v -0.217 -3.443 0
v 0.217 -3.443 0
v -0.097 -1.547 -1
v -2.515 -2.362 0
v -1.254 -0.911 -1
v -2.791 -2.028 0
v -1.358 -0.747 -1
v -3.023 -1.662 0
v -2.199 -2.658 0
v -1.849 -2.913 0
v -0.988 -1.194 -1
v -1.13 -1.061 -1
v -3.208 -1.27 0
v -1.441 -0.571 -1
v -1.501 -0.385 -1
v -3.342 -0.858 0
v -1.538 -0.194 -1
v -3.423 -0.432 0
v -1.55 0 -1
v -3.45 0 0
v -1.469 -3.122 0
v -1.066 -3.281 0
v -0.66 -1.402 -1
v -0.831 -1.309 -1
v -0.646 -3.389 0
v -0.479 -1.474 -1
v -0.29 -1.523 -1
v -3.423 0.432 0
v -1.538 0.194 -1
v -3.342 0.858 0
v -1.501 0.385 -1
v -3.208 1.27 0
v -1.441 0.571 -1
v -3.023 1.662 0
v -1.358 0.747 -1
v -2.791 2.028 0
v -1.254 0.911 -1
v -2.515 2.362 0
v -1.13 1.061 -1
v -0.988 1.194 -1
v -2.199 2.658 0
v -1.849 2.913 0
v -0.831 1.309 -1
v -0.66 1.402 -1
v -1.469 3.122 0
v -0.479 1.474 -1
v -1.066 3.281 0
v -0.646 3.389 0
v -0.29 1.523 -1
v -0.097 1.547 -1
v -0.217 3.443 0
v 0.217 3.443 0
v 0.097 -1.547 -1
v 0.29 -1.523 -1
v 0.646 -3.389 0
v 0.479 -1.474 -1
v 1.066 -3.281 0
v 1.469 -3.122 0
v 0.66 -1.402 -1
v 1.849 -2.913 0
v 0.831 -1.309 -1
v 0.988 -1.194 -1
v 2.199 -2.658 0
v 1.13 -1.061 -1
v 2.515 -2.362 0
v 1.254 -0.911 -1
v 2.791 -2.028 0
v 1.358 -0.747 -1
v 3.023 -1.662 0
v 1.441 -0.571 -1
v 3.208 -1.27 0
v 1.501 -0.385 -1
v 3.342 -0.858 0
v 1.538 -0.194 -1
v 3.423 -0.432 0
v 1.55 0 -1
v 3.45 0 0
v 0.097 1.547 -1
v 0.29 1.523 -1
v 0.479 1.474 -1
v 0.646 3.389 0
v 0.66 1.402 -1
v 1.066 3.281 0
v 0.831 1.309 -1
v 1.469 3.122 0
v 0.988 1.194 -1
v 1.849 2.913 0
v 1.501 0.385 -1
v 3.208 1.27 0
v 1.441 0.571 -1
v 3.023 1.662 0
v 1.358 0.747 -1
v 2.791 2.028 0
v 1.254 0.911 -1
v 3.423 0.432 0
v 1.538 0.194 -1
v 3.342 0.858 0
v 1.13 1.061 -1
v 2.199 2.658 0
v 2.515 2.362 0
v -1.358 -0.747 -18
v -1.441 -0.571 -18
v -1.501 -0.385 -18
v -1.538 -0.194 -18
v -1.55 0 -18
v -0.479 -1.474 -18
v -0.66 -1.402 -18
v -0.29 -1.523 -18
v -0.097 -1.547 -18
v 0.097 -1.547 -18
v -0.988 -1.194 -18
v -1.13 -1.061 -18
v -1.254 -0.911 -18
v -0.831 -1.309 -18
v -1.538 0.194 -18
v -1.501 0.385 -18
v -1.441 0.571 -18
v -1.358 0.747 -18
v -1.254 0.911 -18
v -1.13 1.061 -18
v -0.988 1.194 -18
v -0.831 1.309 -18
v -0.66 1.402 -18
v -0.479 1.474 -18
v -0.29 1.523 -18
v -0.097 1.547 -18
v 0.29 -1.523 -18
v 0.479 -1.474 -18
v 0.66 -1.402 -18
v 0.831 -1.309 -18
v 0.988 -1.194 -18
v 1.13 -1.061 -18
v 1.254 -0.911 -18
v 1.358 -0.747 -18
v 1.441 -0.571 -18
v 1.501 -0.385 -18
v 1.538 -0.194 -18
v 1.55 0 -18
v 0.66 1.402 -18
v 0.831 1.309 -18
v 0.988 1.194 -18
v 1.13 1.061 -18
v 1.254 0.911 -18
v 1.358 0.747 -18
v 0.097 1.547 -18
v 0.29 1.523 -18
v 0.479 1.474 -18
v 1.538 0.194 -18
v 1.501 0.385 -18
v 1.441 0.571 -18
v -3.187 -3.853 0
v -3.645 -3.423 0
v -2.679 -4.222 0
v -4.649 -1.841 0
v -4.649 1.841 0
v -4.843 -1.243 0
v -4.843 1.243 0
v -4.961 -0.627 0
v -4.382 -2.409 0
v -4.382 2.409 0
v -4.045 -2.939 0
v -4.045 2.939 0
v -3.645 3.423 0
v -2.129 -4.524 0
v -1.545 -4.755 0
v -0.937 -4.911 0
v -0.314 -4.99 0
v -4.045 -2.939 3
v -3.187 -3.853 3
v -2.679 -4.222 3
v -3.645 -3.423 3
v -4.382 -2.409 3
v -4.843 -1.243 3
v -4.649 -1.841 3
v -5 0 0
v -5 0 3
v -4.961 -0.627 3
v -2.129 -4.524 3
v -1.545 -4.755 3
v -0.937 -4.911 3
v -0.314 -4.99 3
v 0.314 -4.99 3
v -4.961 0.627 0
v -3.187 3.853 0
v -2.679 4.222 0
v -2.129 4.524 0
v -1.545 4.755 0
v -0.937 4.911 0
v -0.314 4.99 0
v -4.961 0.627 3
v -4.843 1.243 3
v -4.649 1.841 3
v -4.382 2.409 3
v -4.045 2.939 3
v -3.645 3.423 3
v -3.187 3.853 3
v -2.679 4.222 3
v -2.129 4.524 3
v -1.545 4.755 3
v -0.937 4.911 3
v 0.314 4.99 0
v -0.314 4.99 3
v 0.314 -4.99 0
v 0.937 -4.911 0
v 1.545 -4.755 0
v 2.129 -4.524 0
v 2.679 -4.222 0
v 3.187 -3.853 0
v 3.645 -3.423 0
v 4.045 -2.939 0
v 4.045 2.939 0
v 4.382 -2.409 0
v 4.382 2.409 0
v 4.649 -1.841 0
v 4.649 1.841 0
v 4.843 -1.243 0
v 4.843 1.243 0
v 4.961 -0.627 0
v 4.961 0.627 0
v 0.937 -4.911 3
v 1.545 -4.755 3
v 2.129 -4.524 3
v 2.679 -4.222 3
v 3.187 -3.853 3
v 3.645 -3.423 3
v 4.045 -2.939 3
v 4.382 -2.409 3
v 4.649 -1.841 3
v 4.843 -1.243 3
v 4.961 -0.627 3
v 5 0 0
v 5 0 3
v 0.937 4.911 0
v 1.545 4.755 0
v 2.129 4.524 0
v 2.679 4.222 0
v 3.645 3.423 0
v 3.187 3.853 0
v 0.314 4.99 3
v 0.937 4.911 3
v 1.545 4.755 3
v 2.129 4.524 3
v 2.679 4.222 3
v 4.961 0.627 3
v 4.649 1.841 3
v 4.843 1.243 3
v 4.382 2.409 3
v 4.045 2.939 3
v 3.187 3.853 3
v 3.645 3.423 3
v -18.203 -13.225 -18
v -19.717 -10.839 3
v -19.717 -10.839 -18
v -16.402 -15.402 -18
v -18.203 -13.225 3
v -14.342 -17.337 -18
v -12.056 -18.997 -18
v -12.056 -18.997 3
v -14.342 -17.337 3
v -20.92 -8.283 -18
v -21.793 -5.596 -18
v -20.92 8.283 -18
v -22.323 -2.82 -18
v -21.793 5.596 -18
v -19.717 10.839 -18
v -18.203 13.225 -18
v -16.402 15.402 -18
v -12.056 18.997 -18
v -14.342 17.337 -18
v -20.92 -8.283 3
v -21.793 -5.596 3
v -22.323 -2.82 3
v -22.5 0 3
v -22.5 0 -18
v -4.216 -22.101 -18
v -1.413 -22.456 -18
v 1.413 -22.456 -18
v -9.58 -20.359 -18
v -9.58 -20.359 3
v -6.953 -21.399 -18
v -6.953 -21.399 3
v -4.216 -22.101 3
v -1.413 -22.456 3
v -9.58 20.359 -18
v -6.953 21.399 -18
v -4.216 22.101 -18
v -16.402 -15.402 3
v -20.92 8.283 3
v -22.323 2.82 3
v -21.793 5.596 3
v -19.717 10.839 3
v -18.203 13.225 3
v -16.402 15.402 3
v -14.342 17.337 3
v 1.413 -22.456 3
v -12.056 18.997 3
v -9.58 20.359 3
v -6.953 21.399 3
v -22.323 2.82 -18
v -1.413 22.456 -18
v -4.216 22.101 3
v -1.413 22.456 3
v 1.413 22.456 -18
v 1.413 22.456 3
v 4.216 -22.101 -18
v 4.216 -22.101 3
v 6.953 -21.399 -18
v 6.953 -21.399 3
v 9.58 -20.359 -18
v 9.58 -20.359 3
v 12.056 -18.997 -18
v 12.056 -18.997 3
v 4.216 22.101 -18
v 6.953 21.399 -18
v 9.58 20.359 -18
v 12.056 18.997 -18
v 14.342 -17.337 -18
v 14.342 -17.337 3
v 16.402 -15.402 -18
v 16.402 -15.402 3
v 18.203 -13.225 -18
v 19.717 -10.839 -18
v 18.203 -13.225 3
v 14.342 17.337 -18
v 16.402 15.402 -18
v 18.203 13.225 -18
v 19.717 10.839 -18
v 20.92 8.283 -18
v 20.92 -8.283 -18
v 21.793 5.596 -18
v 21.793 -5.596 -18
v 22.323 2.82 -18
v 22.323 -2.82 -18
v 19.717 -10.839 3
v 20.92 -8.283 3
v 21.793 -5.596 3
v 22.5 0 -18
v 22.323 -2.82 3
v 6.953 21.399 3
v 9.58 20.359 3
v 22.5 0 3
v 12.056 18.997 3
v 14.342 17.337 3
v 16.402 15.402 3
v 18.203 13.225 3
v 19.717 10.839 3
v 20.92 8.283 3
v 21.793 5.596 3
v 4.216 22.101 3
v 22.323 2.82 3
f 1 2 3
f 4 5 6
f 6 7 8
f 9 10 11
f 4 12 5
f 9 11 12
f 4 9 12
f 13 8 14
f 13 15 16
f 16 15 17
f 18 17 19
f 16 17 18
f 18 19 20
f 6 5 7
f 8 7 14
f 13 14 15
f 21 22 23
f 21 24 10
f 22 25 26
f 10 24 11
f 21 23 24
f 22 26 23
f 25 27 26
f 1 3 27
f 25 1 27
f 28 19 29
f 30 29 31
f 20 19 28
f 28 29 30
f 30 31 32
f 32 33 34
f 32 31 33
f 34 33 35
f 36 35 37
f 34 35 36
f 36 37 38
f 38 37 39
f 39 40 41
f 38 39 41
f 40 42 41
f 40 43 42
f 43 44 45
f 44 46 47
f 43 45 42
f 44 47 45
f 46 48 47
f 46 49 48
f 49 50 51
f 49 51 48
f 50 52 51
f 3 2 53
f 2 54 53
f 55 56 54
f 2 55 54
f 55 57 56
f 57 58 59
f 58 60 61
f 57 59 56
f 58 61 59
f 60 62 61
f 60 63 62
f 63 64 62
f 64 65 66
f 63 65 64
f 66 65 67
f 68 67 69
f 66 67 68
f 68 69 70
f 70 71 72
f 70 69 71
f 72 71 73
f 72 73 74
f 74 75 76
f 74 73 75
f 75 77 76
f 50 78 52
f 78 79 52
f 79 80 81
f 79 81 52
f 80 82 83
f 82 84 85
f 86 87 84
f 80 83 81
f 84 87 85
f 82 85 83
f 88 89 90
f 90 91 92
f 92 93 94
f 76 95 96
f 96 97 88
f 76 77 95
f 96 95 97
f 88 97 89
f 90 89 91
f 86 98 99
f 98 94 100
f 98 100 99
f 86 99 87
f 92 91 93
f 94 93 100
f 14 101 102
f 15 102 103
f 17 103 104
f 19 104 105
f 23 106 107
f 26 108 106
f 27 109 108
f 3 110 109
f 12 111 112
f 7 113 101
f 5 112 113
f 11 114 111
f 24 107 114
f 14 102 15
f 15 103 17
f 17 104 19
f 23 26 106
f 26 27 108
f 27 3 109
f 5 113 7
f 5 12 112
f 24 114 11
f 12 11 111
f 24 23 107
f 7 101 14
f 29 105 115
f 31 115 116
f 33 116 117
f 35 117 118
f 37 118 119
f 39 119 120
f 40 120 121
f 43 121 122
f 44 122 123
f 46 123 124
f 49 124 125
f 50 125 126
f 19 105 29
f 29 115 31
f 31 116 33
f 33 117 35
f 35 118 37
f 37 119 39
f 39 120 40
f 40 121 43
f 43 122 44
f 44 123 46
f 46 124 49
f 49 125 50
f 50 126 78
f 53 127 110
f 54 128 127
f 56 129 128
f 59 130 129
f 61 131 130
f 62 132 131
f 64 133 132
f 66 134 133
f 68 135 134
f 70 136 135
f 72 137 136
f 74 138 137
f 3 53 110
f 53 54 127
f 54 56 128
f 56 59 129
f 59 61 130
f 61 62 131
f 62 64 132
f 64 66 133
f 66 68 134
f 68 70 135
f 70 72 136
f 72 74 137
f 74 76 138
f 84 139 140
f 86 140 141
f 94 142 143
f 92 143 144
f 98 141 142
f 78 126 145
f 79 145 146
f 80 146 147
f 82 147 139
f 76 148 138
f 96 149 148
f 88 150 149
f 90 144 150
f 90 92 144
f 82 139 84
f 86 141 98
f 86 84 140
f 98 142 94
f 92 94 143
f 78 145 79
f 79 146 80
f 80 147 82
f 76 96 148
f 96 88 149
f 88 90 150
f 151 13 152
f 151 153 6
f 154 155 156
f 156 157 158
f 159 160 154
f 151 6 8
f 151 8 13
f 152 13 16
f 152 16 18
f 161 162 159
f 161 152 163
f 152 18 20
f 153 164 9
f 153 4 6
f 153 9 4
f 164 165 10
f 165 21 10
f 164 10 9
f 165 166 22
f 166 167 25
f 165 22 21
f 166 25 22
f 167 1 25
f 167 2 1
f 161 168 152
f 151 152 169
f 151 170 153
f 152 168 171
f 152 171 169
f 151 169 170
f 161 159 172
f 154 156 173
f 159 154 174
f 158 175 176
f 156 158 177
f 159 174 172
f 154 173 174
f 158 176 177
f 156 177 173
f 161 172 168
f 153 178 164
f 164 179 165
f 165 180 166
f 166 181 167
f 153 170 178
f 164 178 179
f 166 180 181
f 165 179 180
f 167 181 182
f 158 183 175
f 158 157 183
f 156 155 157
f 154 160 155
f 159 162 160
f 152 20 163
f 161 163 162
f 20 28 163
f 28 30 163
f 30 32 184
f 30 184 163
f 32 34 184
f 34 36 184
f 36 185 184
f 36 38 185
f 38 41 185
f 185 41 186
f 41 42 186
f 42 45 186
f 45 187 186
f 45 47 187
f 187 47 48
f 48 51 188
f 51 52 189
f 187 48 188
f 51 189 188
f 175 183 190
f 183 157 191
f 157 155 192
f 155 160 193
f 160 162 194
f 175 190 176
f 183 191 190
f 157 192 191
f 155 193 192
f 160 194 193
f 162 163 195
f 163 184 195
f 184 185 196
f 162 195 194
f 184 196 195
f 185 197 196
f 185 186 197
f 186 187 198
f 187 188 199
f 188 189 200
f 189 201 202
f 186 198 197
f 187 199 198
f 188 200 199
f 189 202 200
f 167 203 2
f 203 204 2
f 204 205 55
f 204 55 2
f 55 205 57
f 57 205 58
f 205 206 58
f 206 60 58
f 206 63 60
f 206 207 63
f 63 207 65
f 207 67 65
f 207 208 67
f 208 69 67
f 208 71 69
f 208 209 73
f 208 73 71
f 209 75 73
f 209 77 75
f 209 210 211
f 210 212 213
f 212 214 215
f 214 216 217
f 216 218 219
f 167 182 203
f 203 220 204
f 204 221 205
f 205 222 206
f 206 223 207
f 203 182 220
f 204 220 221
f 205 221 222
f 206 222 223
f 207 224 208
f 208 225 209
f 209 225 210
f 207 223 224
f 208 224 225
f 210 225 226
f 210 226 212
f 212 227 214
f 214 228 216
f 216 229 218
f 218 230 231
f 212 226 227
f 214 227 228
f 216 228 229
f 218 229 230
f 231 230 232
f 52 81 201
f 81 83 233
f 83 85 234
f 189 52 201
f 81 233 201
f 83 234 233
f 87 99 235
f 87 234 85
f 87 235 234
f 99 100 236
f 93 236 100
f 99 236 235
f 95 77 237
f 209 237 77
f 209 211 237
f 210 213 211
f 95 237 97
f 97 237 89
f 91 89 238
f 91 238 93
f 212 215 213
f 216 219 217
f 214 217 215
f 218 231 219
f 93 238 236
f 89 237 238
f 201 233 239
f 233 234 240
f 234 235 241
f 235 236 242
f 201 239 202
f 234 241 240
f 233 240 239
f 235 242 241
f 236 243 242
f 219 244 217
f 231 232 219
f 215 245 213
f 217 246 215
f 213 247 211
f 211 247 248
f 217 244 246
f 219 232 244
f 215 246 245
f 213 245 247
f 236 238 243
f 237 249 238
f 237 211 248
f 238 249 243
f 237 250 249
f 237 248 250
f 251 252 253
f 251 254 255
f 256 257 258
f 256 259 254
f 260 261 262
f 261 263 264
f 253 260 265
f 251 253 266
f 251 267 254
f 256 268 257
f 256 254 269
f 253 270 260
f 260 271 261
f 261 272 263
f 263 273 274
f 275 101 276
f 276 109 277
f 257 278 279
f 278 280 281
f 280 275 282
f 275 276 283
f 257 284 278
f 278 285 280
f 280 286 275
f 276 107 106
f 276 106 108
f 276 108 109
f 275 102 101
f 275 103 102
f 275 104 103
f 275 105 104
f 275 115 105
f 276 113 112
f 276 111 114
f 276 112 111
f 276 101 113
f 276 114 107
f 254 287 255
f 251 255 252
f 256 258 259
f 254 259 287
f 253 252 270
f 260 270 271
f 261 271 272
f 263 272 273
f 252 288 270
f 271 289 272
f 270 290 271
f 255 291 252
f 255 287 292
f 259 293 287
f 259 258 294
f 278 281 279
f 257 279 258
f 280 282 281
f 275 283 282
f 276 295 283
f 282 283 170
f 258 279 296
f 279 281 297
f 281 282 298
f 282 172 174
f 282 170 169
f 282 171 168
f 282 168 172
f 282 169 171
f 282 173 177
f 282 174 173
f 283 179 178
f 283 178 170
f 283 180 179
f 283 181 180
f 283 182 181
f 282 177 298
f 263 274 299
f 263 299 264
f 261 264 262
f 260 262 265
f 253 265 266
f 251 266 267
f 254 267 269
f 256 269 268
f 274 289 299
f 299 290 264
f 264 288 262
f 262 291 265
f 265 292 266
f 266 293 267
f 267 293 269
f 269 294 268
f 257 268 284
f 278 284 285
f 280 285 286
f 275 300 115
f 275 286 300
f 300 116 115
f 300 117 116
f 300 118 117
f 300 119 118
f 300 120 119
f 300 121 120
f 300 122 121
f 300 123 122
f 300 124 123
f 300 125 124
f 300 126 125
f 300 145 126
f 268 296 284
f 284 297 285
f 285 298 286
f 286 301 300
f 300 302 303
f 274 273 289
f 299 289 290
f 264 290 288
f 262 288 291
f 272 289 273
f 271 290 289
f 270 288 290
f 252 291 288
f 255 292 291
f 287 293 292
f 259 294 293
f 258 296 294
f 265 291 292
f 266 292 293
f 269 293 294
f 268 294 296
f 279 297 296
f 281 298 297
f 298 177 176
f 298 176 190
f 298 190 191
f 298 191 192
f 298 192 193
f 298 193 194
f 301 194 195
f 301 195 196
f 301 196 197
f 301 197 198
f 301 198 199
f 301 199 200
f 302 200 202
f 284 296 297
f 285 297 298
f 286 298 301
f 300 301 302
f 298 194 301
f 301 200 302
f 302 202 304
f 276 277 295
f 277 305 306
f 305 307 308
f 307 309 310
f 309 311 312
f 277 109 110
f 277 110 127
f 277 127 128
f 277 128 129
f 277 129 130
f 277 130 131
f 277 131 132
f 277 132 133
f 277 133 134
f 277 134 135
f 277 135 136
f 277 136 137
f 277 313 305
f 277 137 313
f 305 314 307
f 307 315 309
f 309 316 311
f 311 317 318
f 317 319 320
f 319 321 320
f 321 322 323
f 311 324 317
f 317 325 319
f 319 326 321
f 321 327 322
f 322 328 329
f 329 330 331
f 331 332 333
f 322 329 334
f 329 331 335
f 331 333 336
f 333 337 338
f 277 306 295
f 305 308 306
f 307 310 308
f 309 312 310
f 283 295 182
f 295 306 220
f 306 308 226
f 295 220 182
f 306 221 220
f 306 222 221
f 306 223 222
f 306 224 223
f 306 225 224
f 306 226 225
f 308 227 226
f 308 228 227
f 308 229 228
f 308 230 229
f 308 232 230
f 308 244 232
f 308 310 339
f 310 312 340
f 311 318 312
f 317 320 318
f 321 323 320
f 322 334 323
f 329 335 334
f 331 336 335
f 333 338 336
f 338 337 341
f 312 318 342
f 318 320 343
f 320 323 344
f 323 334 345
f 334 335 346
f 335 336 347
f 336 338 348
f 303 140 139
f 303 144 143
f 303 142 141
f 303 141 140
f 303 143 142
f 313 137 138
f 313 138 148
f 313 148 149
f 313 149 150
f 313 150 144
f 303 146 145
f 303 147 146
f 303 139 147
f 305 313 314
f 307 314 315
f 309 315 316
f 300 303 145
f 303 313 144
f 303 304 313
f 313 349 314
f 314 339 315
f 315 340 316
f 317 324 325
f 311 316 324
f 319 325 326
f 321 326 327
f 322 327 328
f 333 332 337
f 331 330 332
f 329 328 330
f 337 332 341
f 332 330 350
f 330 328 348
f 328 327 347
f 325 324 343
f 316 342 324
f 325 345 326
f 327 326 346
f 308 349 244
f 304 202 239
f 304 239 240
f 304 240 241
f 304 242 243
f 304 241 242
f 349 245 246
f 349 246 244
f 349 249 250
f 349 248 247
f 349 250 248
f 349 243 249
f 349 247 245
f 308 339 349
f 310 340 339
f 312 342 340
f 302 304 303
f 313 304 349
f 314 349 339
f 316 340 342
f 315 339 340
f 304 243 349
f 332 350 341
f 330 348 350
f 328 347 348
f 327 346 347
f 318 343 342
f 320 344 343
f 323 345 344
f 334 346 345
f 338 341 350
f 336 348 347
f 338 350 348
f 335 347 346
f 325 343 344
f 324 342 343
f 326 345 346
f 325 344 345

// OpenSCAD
$fn = 50;

difference() {
	union() {
		translate(v = [0, 0, -18.0]) {
			cylinder(h = 21, r = 22.5);
		}
	}
	union() {
		translate(v = [0, 0, 0]) {
			rotate(a = [0, 0, 0]) {
				difference() {
					union() {
						translate(v = [0, 0, -21.0]) {
							cylinder(h = 21, r = 1.25);
						}
						translate(v = [0, 0, -1.0]) {
							cylinder(h = 1.0, r1 = 1.55, r2 = 3.45);
						}
						translate(v = [0, 0, -21.0]) {
							cylinder(h = 21, r = 1.55);
						}
						translate(v = [0, 0, -21.0]) {
							cylinder(h = 21, r = 1.25);
						}
					}
					union();
				}
			}
		}
		#cylinder(h = 3, r = 5.0);
	}
}
